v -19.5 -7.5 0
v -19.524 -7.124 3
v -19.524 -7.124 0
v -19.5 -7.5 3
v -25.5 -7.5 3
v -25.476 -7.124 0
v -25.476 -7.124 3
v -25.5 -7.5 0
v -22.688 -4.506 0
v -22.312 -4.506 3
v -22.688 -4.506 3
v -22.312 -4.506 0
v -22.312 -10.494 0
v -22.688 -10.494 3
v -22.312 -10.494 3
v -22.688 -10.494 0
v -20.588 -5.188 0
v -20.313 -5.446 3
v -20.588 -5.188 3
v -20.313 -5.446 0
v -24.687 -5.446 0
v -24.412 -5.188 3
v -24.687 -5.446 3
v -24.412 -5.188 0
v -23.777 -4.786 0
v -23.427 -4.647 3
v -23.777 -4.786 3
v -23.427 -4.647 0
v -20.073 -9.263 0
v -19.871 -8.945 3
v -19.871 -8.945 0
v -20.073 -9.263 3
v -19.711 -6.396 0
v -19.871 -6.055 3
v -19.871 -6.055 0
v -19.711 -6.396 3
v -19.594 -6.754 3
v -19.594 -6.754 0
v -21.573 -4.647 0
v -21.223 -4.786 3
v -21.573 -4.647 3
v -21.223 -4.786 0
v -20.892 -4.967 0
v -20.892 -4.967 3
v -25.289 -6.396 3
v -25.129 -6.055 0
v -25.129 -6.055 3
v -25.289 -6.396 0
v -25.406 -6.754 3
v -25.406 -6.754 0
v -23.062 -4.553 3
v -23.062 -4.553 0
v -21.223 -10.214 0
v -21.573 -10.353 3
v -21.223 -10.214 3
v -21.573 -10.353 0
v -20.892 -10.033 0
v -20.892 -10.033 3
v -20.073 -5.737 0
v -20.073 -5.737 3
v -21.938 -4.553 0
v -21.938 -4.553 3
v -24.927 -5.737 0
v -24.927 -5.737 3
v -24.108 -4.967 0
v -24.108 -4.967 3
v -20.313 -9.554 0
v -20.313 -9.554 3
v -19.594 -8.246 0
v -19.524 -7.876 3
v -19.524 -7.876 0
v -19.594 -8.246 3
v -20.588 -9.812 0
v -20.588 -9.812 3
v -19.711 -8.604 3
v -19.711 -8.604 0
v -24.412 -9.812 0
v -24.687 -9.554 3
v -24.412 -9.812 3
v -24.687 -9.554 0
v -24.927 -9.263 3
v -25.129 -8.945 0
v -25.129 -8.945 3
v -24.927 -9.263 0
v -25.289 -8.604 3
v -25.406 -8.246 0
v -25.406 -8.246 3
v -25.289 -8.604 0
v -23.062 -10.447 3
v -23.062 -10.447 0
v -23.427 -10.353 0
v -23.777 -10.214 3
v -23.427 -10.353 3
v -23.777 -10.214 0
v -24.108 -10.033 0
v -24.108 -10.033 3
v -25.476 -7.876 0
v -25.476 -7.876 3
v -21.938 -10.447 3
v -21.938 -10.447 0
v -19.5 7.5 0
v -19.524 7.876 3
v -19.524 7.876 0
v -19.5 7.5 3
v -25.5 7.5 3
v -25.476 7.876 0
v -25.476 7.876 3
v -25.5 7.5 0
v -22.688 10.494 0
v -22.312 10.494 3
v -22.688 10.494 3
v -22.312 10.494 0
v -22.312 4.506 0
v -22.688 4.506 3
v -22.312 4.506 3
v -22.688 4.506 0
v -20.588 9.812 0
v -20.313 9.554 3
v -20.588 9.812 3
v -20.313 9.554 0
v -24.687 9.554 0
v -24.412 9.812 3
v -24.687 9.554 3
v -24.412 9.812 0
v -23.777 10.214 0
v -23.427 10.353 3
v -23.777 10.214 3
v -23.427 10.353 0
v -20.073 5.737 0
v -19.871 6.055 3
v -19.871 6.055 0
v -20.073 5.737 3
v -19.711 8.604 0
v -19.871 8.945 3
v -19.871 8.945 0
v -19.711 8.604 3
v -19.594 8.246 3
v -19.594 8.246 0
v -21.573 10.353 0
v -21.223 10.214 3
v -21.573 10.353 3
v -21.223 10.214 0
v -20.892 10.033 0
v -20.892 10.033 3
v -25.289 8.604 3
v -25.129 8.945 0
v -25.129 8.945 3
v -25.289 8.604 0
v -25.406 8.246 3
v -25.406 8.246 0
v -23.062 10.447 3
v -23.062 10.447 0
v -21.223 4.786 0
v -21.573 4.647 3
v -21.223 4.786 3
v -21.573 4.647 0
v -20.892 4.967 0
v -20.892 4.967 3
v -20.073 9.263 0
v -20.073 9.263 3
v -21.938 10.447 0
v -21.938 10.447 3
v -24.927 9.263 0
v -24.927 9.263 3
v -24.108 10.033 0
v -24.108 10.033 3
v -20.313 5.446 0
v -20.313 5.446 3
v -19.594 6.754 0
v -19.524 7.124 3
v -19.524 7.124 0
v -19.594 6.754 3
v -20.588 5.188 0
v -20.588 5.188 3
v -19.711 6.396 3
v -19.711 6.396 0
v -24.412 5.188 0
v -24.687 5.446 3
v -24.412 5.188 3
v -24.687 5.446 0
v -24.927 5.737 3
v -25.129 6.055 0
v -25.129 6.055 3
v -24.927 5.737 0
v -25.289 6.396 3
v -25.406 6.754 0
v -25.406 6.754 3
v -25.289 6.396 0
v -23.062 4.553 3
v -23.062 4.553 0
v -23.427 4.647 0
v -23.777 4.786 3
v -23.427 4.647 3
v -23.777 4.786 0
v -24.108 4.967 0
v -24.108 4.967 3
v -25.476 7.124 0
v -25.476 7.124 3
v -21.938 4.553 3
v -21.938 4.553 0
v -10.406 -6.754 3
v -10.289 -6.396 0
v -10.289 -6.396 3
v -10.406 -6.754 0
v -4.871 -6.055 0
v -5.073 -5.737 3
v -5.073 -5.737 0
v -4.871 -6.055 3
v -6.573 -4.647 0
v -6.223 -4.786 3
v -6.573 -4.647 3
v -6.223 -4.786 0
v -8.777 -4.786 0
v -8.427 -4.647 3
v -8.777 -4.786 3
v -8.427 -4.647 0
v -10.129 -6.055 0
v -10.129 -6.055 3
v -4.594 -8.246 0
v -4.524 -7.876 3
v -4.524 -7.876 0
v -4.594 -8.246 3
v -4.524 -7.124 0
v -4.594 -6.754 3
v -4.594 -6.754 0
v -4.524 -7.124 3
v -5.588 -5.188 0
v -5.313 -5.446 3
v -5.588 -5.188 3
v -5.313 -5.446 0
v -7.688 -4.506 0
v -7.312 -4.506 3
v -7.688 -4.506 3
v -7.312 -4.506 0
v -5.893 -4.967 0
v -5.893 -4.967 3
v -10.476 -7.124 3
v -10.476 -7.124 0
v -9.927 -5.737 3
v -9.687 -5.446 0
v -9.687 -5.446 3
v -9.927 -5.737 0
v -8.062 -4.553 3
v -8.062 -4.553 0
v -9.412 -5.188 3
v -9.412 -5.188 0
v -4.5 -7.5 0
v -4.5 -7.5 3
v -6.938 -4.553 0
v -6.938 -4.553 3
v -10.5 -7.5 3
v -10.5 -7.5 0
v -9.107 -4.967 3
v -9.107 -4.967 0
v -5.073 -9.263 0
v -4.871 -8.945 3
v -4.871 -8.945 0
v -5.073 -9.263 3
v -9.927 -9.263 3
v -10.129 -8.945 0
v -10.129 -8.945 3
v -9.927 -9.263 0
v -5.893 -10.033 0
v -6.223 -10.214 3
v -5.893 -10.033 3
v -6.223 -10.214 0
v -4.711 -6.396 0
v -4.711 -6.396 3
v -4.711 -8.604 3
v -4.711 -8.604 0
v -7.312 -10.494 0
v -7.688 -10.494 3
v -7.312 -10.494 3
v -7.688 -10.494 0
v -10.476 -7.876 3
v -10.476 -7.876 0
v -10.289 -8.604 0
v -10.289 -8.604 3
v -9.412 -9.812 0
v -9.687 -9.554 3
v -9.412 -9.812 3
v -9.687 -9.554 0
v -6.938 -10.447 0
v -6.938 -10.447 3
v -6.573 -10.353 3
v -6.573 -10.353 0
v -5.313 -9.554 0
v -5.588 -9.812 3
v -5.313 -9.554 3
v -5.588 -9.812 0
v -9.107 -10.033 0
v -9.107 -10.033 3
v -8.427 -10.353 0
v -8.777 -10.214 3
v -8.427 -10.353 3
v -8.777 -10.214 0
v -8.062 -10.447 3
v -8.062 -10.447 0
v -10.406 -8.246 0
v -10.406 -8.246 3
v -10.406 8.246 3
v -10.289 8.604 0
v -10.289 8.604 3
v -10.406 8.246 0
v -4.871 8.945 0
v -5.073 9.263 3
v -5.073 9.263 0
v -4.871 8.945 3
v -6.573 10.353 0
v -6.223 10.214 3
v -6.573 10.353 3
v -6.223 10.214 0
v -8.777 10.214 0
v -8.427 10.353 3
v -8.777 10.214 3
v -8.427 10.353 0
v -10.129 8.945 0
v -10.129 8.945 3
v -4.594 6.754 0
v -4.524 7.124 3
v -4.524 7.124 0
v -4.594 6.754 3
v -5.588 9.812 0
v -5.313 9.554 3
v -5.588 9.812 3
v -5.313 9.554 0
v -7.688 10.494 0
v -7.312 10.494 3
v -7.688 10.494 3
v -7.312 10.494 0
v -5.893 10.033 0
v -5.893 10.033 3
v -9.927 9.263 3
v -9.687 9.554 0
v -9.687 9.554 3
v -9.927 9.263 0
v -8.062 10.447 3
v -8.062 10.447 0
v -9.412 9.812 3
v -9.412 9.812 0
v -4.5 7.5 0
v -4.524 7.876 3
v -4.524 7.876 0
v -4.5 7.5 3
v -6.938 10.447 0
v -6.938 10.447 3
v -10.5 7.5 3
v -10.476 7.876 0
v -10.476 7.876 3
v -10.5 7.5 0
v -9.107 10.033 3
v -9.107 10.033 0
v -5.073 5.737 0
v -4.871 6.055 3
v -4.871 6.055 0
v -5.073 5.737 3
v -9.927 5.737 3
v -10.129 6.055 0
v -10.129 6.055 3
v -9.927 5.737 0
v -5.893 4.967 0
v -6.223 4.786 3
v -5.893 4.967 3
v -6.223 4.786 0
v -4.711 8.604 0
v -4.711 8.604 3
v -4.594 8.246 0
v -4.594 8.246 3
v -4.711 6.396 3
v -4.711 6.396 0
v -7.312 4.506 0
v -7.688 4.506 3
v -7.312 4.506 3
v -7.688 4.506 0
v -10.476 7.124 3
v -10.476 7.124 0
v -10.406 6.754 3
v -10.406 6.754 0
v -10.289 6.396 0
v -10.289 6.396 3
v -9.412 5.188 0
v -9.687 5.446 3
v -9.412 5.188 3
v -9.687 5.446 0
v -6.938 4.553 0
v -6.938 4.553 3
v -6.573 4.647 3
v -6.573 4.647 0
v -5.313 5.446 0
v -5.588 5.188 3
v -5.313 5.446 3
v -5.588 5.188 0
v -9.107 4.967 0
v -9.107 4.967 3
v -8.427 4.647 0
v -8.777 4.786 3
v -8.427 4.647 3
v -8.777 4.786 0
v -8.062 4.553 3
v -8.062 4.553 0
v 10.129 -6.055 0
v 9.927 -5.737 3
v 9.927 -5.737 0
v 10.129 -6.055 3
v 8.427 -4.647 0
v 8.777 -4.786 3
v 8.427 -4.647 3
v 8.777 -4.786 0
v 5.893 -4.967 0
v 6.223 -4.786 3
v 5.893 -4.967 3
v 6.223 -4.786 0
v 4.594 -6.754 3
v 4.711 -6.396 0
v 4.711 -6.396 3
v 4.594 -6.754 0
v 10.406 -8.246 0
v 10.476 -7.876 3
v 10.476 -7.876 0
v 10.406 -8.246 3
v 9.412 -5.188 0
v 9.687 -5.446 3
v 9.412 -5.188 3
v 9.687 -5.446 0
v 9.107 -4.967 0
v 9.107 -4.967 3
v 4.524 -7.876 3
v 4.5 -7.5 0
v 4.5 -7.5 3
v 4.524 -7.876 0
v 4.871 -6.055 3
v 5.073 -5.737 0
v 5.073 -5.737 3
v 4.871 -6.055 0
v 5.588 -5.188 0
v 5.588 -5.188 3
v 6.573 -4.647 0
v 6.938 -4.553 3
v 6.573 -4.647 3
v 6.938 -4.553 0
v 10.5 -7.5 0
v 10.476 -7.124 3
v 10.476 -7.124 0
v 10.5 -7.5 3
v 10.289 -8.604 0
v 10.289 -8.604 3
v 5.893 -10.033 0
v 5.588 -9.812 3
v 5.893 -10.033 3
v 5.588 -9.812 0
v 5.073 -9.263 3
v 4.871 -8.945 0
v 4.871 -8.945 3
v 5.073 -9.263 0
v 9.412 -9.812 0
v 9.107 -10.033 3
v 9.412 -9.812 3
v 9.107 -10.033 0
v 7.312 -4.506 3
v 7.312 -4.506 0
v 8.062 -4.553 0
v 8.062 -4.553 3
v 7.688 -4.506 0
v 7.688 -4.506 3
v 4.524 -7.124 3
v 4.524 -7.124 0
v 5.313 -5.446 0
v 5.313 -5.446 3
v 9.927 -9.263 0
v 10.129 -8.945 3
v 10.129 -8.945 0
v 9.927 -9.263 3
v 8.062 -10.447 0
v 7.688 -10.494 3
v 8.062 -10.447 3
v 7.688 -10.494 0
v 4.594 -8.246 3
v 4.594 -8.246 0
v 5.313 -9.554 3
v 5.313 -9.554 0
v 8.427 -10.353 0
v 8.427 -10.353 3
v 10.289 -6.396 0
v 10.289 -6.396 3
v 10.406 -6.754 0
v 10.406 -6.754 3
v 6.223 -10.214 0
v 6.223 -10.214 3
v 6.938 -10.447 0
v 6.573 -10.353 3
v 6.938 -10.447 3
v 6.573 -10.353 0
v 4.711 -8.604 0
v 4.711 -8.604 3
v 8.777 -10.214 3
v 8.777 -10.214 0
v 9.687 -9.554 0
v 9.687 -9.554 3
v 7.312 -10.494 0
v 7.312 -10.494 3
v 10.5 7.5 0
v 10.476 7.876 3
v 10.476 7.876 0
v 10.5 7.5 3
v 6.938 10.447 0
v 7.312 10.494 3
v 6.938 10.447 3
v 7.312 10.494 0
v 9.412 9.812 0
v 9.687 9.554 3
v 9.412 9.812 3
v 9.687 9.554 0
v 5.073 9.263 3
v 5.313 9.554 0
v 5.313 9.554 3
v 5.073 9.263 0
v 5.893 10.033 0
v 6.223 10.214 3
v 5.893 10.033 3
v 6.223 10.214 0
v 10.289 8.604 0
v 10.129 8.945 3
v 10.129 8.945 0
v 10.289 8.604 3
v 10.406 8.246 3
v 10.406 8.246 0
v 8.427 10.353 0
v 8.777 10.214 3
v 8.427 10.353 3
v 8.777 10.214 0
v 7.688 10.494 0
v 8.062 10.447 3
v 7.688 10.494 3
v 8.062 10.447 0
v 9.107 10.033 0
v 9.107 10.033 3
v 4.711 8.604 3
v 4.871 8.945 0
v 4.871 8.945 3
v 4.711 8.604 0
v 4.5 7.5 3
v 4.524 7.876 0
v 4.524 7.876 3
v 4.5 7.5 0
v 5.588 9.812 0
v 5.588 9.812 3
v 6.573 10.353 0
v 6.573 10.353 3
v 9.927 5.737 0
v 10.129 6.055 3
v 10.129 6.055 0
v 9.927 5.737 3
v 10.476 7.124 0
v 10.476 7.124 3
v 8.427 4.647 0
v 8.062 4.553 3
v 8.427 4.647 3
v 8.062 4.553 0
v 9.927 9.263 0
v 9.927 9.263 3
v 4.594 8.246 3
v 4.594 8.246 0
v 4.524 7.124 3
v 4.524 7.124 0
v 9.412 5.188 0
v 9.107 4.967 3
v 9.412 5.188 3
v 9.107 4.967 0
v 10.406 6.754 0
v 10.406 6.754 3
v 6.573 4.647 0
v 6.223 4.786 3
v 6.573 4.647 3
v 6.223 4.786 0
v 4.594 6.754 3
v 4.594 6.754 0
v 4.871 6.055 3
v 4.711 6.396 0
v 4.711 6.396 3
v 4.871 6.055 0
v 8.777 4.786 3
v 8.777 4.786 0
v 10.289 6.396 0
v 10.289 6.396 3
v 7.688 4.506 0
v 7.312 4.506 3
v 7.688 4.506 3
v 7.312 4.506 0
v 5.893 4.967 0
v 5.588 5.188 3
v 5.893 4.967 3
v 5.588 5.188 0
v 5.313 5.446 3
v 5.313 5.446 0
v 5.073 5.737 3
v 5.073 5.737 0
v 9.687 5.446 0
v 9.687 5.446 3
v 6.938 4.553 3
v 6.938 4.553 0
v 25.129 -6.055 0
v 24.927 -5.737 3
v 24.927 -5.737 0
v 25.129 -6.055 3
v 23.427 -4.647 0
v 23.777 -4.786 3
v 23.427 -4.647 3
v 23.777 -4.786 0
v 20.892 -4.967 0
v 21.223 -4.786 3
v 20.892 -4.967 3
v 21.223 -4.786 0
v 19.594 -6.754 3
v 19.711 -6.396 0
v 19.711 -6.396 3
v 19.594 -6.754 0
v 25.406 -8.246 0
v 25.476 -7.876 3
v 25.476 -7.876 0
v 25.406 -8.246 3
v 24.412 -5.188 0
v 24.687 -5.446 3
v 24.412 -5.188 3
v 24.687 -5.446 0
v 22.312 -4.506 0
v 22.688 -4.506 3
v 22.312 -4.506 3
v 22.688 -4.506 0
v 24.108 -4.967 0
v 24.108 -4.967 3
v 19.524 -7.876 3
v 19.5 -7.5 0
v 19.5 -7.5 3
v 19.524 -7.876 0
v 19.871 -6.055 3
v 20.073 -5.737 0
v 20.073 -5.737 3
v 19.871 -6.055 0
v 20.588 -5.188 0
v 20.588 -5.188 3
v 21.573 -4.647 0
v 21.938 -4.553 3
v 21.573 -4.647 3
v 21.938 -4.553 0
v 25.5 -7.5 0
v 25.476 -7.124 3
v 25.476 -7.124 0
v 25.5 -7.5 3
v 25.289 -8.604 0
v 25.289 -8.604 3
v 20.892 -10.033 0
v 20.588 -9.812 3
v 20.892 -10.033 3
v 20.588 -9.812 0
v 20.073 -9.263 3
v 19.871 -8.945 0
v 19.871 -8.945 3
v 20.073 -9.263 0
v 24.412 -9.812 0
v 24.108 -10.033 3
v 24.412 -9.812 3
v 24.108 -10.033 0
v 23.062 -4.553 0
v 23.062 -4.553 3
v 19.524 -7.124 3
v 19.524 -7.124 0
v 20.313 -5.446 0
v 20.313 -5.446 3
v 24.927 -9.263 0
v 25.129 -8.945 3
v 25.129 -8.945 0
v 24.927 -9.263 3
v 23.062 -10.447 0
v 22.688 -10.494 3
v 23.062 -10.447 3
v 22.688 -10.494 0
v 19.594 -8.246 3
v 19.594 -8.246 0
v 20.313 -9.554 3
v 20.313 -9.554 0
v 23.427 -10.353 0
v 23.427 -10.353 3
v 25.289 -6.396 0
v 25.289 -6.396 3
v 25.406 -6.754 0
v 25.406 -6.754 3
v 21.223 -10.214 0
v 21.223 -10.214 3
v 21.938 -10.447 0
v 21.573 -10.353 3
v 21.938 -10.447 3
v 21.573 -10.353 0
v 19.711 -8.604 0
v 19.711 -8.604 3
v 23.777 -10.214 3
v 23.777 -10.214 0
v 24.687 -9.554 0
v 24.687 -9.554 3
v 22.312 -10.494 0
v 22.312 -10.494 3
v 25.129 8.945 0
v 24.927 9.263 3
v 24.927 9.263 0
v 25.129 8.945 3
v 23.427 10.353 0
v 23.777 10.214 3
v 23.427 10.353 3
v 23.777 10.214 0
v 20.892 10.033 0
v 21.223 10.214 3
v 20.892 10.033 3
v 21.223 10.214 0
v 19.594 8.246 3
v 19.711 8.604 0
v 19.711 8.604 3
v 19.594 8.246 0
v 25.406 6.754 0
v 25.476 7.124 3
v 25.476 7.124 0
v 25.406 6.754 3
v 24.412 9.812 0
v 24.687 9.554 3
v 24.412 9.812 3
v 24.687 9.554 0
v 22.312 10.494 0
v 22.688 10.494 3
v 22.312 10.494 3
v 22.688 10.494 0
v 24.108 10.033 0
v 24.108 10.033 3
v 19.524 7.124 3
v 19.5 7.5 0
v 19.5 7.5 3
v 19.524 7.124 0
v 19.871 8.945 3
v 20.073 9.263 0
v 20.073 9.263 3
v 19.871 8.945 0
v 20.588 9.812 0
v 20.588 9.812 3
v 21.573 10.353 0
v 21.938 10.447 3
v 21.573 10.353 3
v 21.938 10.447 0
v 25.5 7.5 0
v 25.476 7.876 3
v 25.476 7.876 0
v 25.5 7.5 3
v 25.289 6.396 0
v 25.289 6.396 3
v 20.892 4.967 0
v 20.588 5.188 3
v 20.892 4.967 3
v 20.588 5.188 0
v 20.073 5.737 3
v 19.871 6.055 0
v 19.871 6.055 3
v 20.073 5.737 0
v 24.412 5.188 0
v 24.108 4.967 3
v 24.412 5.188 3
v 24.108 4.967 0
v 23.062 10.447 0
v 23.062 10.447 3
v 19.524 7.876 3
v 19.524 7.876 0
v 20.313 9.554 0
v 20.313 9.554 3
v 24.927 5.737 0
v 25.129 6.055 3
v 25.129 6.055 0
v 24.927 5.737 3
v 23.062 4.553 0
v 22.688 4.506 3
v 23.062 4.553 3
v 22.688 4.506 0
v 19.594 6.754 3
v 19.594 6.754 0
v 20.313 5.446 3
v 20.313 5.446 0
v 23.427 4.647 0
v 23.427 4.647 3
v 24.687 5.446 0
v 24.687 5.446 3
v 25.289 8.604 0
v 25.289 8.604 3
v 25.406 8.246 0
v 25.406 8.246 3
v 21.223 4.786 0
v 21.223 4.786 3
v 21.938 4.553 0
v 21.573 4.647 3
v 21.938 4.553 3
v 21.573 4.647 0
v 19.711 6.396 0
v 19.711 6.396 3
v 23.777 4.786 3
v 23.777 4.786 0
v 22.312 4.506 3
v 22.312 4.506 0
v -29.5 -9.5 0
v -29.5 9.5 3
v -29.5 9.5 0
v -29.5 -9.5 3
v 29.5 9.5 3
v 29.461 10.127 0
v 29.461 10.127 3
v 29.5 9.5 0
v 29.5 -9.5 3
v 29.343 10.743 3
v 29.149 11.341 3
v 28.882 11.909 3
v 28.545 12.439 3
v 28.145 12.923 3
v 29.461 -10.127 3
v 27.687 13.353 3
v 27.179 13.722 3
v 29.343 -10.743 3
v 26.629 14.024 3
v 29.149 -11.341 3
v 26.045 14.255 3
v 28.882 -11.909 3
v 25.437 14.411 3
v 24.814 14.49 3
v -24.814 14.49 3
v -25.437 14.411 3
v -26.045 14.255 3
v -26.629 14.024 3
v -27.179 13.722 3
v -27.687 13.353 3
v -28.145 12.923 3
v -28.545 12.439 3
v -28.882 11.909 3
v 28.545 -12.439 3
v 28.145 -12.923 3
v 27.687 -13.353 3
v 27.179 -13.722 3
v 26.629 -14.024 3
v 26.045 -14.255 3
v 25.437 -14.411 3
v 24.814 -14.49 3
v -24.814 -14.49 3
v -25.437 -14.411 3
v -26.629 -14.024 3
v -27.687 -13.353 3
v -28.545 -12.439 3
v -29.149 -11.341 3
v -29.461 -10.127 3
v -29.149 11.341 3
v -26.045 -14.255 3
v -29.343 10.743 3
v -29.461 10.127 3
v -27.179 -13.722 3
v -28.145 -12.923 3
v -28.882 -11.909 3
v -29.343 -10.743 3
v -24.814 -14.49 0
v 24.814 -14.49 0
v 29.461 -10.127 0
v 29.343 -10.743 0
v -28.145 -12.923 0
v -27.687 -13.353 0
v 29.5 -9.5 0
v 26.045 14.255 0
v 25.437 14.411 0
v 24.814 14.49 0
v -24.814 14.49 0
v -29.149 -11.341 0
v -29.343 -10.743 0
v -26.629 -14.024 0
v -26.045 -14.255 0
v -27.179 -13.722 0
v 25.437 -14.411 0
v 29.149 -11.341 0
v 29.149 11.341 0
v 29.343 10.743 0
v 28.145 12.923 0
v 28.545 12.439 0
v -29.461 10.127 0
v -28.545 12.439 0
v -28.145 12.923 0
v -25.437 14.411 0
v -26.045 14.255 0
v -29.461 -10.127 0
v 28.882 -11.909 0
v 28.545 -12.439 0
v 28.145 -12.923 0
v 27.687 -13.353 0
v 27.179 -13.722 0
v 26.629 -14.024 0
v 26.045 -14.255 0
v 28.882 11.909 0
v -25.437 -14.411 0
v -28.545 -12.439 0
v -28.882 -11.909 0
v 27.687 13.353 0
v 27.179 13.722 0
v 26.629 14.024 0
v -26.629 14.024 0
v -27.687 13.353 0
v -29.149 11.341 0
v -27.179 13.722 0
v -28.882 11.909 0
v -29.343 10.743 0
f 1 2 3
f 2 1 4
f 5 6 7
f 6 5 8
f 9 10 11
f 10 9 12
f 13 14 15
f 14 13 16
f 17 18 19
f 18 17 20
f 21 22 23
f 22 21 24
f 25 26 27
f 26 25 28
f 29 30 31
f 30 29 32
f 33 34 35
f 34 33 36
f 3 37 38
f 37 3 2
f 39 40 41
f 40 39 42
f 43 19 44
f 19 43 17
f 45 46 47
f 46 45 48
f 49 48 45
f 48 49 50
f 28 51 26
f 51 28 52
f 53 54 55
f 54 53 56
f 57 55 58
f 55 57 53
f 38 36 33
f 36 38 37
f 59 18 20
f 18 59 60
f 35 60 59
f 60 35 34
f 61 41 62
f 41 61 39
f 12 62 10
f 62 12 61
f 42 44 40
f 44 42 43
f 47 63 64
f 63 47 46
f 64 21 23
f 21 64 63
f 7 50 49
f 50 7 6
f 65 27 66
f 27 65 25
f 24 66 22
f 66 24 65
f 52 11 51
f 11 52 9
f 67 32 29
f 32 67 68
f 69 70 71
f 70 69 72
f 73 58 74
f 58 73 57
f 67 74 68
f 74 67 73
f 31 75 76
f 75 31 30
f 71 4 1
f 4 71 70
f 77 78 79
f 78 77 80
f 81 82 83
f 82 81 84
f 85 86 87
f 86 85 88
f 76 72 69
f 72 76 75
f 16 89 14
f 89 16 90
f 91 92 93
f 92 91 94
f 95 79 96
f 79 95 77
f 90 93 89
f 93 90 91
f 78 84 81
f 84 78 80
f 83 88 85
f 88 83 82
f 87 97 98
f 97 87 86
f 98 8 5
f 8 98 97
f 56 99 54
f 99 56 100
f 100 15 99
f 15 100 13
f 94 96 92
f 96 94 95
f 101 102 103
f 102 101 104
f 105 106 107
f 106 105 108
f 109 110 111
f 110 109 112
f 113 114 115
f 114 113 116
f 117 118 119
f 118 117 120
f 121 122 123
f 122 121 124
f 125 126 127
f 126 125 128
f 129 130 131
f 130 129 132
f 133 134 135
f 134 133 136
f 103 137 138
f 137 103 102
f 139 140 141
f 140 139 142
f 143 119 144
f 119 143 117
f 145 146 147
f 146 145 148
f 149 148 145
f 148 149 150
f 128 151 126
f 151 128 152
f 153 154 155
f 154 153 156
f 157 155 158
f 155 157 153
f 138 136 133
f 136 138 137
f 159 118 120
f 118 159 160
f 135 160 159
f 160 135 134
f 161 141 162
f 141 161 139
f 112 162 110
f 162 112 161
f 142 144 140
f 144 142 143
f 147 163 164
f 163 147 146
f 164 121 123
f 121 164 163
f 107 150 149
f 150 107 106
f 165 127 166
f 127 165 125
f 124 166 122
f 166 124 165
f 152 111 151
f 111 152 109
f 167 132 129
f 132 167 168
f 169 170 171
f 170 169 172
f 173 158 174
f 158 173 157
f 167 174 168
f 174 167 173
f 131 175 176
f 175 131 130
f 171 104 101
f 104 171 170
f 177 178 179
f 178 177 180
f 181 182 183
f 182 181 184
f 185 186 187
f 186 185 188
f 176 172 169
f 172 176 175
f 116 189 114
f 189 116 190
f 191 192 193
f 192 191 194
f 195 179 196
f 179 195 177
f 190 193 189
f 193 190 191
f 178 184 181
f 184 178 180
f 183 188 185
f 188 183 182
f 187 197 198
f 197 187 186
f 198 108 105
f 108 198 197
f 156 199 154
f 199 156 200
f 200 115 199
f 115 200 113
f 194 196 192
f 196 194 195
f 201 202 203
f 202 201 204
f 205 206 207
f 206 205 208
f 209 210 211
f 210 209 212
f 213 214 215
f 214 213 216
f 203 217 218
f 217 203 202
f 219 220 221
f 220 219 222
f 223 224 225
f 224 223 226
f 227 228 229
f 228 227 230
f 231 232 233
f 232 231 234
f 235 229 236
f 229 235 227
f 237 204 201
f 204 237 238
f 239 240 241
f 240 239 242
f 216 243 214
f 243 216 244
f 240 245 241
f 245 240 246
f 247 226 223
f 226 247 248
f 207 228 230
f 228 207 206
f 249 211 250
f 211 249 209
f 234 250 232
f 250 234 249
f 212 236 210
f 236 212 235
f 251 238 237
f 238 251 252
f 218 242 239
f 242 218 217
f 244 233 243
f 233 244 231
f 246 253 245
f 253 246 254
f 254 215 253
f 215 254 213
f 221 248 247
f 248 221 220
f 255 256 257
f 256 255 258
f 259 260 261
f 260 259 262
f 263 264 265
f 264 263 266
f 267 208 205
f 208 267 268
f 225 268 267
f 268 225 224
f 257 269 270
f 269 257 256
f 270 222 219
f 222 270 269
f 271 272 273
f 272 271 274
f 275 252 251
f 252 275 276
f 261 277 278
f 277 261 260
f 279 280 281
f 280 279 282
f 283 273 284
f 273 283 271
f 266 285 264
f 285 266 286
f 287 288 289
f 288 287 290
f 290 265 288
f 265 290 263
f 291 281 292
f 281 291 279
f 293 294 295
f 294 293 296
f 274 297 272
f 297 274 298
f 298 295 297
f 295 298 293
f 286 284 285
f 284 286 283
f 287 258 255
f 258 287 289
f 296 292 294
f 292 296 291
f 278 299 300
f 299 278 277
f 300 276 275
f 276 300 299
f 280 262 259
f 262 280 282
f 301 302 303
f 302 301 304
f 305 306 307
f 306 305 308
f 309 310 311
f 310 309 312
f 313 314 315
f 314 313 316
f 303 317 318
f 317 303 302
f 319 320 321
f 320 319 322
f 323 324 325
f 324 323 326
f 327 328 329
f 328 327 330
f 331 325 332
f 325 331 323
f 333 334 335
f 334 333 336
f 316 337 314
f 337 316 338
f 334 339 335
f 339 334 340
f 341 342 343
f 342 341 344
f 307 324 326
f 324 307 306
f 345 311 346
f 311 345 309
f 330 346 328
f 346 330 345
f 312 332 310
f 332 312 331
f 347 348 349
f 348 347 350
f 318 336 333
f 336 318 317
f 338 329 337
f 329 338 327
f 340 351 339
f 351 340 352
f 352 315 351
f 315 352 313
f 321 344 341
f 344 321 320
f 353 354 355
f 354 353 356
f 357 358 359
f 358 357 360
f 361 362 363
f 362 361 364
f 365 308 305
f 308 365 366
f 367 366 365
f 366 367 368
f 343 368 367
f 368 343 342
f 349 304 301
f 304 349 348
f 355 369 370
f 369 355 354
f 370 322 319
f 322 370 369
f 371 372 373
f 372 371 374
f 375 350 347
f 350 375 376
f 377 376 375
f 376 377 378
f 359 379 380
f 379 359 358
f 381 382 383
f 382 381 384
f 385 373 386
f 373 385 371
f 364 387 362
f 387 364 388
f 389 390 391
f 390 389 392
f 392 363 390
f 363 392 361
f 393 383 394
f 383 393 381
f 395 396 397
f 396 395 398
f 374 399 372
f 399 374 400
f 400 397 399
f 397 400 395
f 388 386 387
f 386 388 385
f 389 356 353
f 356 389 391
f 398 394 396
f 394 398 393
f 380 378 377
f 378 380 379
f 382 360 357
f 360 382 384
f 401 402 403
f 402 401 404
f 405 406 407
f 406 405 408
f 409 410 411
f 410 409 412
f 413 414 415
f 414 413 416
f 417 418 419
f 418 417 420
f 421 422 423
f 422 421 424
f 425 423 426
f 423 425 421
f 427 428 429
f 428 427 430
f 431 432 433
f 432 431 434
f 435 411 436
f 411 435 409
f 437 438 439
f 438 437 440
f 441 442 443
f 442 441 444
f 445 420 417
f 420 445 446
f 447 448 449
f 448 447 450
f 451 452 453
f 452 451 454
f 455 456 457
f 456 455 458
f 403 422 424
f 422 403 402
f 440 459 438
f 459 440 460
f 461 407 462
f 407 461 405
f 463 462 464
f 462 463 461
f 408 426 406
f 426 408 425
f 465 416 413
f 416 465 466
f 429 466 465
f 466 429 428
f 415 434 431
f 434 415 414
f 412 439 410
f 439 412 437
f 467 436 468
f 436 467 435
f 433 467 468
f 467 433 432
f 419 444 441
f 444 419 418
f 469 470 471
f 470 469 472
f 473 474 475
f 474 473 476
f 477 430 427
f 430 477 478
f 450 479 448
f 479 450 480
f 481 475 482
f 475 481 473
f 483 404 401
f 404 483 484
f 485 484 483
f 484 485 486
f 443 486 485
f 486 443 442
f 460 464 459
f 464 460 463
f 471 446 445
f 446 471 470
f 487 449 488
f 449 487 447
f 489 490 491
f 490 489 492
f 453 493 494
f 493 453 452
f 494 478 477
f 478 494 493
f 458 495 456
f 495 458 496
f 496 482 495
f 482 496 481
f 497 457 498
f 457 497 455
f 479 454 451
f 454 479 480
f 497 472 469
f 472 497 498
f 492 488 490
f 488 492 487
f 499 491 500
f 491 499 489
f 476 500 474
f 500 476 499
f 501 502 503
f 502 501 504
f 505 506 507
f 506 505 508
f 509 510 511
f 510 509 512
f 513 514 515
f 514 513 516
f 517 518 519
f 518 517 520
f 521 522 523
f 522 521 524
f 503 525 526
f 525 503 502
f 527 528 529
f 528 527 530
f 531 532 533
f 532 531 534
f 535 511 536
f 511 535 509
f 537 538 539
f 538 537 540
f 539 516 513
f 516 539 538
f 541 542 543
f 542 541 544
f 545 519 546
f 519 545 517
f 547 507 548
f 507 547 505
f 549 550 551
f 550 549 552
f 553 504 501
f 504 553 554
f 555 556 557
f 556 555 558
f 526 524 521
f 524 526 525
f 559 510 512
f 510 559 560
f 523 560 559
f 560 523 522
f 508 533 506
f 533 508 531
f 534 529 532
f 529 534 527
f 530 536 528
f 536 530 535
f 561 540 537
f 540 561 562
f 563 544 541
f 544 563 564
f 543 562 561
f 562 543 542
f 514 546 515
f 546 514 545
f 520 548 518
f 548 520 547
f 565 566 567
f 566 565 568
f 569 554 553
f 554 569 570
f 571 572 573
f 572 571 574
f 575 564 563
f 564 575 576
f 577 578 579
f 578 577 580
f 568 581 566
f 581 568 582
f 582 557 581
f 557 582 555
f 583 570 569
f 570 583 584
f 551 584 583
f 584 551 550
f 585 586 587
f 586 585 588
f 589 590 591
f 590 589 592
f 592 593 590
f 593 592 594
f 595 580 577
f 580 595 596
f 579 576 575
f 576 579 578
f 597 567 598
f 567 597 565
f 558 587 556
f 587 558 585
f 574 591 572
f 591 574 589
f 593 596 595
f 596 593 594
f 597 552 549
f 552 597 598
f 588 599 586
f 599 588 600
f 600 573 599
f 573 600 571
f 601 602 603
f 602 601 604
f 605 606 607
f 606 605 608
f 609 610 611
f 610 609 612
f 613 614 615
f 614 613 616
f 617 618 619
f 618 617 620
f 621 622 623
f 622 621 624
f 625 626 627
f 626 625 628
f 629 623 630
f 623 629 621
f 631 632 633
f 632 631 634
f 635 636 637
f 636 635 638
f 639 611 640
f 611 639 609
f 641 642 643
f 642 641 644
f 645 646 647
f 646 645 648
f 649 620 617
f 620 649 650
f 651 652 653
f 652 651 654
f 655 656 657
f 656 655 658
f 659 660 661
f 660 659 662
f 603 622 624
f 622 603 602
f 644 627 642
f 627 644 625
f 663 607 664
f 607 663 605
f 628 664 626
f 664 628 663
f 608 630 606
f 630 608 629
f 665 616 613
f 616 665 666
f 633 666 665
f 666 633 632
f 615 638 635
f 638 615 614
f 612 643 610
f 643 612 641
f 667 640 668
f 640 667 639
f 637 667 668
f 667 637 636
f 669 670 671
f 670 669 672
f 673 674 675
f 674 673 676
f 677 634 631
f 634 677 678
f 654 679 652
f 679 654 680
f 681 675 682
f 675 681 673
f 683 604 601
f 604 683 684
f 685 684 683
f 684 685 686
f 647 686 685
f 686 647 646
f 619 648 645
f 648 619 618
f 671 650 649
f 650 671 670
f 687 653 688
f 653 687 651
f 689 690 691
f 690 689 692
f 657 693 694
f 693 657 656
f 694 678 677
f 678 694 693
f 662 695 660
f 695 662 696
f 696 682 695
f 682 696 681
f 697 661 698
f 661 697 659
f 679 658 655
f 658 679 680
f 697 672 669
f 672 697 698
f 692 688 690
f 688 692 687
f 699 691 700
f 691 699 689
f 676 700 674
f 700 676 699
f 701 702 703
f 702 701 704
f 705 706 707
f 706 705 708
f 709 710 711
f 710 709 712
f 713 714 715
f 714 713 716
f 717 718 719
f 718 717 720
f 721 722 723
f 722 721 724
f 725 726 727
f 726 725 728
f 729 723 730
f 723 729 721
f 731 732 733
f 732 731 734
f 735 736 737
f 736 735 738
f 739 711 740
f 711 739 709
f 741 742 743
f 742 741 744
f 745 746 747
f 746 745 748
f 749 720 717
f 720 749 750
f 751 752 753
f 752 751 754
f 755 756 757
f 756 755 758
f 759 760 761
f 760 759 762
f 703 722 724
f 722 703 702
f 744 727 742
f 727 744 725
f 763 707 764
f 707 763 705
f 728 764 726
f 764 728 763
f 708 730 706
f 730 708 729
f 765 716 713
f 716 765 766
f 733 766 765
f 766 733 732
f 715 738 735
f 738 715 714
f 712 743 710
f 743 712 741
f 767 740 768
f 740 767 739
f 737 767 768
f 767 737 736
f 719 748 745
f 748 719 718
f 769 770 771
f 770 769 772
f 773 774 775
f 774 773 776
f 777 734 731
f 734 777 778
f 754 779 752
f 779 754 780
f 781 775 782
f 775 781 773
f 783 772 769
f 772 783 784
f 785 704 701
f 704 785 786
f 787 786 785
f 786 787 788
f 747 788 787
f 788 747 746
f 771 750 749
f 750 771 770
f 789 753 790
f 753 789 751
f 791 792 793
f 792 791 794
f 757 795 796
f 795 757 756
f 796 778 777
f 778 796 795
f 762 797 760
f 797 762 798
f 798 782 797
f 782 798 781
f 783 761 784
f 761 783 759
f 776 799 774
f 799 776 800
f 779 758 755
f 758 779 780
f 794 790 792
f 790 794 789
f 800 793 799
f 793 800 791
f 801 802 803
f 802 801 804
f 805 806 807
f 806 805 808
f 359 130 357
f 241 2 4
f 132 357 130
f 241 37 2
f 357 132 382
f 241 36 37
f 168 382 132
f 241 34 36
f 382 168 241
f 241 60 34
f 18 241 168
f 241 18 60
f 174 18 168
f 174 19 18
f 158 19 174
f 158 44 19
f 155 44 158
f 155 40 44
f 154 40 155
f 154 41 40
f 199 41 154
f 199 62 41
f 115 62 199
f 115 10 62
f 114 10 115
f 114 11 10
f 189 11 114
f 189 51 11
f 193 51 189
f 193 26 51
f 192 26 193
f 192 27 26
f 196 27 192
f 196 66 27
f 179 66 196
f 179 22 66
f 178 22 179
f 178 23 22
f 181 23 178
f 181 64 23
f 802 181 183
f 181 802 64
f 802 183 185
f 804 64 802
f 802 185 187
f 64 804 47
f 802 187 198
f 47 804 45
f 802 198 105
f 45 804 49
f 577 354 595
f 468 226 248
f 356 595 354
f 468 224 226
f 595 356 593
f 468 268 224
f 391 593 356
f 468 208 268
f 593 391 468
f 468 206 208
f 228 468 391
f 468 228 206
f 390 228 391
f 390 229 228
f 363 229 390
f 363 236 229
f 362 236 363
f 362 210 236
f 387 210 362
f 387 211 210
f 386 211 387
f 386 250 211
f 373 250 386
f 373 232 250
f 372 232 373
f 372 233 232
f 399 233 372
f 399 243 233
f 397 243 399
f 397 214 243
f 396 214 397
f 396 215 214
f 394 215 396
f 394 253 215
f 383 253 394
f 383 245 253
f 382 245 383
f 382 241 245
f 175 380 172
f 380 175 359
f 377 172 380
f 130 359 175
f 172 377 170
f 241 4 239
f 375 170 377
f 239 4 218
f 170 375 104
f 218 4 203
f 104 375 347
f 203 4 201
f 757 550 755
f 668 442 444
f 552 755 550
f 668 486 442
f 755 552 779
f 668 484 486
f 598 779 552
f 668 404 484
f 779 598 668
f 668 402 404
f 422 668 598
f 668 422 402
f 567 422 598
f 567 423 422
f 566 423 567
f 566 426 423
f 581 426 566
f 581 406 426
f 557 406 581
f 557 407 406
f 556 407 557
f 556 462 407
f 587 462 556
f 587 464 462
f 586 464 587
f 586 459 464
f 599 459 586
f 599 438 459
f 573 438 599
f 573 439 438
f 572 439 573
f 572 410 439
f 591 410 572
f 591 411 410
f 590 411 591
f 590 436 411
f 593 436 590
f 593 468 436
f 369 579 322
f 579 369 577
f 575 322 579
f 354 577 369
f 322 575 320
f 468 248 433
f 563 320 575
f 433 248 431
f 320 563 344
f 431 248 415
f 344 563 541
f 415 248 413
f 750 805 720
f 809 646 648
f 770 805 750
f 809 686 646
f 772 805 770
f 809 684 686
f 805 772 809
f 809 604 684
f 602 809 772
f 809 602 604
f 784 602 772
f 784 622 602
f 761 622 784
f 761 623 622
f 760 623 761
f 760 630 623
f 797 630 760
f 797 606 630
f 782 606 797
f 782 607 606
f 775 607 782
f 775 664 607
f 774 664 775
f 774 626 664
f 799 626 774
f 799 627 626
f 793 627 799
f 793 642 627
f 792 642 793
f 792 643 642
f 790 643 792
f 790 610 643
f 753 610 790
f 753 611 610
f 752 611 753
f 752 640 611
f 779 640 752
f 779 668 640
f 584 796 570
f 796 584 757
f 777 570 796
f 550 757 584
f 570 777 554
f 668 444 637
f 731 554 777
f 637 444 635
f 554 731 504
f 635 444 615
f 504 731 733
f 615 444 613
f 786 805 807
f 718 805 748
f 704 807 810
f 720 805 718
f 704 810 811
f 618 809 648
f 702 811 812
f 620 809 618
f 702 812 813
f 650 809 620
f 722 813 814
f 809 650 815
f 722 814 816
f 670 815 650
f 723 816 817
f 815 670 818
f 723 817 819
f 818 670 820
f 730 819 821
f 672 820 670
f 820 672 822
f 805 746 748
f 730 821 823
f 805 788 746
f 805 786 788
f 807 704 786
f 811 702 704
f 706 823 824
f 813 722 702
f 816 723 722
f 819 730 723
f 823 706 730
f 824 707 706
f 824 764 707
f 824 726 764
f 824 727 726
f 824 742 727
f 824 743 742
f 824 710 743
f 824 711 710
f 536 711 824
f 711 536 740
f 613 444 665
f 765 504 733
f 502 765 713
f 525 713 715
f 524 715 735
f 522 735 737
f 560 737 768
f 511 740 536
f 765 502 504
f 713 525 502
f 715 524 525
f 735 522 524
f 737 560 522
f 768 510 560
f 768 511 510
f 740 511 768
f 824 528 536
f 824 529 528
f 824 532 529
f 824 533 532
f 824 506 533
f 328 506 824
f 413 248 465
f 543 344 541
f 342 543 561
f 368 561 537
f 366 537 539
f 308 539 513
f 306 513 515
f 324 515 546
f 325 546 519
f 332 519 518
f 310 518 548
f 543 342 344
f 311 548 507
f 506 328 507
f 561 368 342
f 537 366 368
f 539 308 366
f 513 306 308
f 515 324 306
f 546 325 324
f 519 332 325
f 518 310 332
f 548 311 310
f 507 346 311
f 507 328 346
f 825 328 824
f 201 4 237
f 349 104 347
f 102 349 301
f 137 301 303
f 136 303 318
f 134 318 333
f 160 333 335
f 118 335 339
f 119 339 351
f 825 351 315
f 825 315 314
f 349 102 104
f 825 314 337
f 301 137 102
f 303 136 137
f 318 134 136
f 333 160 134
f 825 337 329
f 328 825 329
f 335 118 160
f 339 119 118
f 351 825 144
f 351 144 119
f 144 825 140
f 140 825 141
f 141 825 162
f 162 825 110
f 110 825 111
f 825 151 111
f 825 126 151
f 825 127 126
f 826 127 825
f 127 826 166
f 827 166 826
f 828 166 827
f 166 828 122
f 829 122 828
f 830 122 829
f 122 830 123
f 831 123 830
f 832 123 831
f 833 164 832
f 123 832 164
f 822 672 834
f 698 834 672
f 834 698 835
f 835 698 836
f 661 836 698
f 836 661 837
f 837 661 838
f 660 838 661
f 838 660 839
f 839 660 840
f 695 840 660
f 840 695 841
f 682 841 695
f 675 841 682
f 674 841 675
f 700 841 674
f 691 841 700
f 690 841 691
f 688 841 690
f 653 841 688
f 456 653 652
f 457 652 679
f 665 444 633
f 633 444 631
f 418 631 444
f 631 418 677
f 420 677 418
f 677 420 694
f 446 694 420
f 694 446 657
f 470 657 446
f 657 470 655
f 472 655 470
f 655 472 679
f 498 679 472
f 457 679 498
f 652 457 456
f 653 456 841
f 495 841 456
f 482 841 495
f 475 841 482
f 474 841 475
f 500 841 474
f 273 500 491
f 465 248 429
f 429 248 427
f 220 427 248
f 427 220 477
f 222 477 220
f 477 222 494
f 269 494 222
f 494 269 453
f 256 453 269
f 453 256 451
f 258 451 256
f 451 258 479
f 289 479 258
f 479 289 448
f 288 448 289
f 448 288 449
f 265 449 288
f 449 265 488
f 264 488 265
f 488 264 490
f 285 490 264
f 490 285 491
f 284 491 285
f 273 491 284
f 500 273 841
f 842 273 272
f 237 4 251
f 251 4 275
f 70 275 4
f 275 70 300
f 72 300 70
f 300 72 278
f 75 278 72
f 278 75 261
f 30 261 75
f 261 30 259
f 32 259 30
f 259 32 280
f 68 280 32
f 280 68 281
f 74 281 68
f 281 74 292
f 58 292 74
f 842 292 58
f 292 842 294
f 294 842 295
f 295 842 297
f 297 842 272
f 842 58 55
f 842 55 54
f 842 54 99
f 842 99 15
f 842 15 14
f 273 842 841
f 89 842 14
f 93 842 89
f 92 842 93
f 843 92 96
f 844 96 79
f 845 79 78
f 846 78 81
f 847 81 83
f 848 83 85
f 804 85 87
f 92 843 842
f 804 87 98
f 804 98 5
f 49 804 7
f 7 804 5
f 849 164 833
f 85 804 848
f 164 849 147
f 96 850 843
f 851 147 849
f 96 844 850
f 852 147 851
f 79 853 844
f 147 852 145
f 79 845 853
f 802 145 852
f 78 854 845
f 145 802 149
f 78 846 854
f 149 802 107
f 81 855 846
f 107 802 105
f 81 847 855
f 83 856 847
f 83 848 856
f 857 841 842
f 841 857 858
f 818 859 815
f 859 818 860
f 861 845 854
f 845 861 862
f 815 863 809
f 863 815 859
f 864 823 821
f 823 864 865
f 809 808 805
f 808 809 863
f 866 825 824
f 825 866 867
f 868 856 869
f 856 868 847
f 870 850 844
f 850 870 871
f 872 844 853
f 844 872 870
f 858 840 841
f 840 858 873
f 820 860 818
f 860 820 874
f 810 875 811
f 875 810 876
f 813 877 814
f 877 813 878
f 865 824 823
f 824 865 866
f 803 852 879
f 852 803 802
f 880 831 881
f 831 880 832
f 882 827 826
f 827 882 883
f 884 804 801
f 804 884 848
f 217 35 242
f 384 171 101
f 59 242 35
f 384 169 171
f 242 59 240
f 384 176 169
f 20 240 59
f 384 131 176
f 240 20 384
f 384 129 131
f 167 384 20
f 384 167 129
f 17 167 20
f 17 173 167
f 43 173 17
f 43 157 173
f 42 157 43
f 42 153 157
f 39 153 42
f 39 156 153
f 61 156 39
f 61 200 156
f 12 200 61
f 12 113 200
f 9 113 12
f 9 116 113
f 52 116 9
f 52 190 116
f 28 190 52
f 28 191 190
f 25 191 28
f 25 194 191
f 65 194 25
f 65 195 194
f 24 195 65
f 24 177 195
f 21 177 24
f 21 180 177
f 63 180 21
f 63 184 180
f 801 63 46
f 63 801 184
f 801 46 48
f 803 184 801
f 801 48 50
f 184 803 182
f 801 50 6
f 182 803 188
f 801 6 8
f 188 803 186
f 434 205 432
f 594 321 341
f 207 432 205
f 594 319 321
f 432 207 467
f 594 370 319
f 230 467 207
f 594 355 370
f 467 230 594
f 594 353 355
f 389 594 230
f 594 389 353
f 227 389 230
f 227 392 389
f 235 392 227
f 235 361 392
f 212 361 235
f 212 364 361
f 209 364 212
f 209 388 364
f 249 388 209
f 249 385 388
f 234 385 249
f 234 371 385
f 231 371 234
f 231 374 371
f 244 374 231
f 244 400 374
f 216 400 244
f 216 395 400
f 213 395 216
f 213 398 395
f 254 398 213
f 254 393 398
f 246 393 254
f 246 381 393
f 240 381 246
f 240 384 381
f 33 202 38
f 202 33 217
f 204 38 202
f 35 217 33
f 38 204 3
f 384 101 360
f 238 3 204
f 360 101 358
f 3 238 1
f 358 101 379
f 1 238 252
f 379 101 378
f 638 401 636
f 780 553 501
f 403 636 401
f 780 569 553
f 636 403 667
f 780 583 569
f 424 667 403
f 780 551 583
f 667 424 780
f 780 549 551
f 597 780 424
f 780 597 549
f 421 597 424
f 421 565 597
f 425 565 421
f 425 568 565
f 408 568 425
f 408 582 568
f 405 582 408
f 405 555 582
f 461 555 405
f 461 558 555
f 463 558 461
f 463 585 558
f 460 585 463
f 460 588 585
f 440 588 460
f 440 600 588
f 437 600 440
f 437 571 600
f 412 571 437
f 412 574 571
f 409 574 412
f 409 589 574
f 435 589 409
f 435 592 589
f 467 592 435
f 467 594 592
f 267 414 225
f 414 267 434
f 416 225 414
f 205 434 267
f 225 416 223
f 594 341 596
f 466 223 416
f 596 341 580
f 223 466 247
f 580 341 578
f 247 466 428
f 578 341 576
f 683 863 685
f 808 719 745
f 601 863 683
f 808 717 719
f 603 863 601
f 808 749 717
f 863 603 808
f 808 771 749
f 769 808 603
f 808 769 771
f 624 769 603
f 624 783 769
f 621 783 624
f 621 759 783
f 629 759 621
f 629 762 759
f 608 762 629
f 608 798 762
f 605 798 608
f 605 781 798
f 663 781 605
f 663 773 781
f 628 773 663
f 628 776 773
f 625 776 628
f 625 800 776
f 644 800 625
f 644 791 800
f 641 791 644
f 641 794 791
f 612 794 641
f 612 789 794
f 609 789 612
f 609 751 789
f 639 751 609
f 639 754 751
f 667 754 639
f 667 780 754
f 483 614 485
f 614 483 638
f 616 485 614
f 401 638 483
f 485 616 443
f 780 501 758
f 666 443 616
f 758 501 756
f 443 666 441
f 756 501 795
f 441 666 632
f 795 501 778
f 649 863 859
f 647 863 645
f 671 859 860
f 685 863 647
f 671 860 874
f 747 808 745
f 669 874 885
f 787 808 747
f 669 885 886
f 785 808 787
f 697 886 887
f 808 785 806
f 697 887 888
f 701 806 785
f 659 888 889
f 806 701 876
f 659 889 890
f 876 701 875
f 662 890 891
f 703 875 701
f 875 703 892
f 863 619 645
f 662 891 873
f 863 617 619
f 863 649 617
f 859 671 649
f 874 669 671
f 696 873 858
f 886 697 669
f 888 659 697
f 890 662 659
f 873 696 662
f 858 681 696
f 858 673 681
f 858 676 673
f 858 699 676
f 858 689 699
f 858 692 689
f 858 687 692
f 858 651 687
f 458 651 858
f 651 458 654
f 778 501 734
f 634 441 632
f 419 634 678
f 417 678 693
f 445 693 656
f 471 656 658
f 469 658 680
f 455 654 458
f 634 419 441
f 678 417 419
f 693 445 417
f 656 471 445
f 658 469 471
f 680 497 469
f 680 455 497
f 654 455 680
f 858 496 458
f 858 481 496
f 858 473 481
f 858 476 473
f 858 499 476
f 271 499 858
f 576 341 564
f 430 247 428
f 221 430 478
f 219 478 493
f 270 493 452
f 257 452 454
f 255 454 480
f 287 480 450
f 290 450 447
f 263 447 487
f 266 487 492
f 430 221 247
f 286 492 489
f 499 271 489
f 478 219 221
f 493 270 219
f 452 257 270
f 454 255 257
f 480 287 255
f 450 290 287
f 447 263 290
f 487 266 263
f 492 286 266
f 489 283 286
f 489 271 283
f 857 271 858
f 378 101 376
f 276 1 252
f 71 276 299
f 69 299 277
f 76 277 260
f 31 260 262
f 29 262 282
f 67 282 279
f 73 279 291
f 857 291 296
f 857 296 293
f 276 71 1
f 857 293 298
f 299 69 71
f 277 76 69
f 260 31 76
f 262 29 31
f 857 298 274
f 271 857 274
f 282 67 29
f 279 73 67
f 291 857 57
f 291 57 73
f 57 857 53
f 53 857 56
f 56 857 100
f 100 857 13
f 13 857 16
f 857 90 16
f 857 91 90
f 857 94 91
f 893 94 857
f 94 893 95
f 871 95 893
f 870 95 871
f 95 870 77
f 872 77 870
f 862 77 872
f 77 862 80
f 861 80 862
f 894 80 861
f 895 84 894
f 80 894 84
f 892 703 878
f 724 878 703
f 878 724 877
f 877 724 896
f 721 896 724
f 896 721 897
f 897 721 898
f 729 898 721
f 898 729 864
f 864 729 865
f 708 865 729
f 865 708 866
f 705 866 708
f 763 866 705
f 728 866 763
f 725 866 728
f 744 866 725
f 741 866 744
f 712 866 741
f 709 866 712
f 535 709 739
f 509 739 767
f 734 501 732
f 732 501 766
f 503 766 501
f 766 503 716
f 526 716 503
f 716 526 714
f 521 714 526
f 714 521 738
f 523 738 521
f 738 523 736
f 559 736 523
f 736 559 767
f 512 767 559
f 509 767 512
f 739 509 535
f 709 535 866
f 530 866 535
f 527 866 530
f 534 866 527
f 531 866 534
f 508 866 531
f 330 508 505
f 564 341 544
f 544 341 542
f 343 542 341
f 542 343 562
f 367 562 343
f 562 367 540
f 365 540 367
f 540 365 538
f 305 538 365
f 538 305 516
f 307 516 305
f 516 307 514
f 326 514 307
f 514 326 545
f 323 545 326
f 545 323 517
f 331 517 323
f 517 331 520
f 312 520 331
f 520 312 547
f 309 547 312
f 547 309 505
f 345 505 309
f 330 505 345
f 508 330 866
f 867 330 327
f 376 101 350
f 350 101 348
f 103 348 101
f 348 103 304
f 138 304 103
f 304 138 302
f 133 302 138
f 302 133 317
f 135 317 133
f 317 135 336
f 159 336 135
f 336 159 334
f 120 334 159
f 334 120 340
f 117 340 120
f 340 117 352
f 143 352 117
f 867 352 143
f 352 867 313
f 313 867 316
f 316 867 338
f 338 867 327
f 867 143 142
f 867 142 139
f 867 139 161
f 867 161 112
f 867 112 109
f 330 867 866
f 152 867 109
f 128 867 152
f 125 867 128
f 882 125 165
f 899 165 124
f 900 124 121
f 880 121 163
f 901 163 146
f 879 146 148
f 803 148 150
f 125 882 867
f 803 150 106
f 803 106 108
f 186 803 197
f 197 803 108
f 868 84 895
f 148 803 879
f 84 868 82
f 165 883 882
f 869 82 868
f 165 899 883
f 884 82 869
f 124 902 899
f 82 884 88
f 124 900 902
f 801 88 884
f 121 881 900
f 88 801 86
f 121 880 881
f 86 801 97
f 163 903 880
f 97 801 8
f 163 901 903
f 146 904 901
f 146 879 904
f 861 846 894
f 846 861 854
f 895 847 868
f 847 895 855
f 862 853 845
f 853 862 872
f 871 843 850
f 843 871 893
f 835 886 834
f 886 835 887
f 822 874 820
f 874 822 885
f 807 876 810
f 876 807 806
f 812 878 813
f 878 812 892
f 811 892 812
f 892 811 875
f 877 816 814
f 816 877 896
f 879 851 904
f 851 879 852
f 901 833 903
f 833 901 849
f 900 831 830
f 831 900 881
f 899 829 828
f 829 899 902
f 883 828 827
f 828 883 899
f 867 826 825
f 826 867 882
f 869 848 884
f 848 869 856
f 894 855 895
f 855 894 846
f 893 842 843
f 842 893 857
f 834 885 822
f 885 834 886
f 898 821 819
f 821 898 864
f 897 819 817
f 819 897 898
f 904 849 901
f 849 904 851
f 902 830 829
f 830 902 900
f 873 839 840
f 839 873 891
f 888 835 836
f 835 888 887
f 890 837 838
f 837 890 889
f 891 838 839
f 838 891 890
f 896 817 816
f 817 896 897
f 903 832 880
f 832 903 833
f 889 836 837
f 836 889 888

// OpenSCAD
$fn = 50;


difference() {
	union() {
		hull() {
			translate(v = [-24.5000000000, 9.5000000000, 0]) {
				cylinder(h = 3, r = 5);
			}
			translate(v = [24.5000000000, 9.5000000000, 0]) {
				cylinder(h = 3, r = 5);
			}
			translate(v = [-24.5000000000, -9.5000000000, 0]) {
				cylinder(h = 3, r = 5);
			}
			translate(v = [24.5000000000, -9.5000000000, 0]) {
				cylinder(h = 3, r = 5);
			}
		}
	}
	union() {
		translate(v = [-22.5000000000, -7.5000000000, 0]) {
			translate(v = [0, 0, -100]) {
				cylinder(h = 200, r = 3.0000000000);
			}
		}
		translate(v = [-22.5000000000, 7.5000000000, 0]) {
			translate(v = [0, 0, -100]) {
				cylinder(h = 200, r = 3.0000000000);
			}
		}
		translate(v = [-7.5000000000, -7.5000000000, 0]) {
			translate(v = [0, 0, -100]) {
				cylinder(h = 200, r = 3.0000000000);
			}
		}
		translate(v = [-7.5000000000, 7.5000000000, 0]) {
			translate(v = [0, 0, -100]) {
				cylinder(h = 200, r = 3.0000000000);
			}
		}
		translate(v = [7.5000000000, -7.5000000000, 0]) {
			translate(v = [0, 0, -100]) {
				cylinder(h = 200, r = 3.0000000000);
			}
		}
		translate(v = [7.5000000000, 7.5000000000, 0]) {
			translate(v = [0, 0, -100]) {
				cylinder(h = 200, r = 3.0000000000);
			}
		}
		translate(v = [22.5000000000, -7.5000000000, 0]) {
			translate(v = [0, 0, -100]) {
				cylinder(h = 200, r = 3.0000000000);
			}
		}
		translate(v = [22.5000000000, 7.5000000000, 0]) {
			translate(v = [0, 0, -100]) {
				cylinder(h = 200, r = 3.0000000000);
			}
		}
	}
}
